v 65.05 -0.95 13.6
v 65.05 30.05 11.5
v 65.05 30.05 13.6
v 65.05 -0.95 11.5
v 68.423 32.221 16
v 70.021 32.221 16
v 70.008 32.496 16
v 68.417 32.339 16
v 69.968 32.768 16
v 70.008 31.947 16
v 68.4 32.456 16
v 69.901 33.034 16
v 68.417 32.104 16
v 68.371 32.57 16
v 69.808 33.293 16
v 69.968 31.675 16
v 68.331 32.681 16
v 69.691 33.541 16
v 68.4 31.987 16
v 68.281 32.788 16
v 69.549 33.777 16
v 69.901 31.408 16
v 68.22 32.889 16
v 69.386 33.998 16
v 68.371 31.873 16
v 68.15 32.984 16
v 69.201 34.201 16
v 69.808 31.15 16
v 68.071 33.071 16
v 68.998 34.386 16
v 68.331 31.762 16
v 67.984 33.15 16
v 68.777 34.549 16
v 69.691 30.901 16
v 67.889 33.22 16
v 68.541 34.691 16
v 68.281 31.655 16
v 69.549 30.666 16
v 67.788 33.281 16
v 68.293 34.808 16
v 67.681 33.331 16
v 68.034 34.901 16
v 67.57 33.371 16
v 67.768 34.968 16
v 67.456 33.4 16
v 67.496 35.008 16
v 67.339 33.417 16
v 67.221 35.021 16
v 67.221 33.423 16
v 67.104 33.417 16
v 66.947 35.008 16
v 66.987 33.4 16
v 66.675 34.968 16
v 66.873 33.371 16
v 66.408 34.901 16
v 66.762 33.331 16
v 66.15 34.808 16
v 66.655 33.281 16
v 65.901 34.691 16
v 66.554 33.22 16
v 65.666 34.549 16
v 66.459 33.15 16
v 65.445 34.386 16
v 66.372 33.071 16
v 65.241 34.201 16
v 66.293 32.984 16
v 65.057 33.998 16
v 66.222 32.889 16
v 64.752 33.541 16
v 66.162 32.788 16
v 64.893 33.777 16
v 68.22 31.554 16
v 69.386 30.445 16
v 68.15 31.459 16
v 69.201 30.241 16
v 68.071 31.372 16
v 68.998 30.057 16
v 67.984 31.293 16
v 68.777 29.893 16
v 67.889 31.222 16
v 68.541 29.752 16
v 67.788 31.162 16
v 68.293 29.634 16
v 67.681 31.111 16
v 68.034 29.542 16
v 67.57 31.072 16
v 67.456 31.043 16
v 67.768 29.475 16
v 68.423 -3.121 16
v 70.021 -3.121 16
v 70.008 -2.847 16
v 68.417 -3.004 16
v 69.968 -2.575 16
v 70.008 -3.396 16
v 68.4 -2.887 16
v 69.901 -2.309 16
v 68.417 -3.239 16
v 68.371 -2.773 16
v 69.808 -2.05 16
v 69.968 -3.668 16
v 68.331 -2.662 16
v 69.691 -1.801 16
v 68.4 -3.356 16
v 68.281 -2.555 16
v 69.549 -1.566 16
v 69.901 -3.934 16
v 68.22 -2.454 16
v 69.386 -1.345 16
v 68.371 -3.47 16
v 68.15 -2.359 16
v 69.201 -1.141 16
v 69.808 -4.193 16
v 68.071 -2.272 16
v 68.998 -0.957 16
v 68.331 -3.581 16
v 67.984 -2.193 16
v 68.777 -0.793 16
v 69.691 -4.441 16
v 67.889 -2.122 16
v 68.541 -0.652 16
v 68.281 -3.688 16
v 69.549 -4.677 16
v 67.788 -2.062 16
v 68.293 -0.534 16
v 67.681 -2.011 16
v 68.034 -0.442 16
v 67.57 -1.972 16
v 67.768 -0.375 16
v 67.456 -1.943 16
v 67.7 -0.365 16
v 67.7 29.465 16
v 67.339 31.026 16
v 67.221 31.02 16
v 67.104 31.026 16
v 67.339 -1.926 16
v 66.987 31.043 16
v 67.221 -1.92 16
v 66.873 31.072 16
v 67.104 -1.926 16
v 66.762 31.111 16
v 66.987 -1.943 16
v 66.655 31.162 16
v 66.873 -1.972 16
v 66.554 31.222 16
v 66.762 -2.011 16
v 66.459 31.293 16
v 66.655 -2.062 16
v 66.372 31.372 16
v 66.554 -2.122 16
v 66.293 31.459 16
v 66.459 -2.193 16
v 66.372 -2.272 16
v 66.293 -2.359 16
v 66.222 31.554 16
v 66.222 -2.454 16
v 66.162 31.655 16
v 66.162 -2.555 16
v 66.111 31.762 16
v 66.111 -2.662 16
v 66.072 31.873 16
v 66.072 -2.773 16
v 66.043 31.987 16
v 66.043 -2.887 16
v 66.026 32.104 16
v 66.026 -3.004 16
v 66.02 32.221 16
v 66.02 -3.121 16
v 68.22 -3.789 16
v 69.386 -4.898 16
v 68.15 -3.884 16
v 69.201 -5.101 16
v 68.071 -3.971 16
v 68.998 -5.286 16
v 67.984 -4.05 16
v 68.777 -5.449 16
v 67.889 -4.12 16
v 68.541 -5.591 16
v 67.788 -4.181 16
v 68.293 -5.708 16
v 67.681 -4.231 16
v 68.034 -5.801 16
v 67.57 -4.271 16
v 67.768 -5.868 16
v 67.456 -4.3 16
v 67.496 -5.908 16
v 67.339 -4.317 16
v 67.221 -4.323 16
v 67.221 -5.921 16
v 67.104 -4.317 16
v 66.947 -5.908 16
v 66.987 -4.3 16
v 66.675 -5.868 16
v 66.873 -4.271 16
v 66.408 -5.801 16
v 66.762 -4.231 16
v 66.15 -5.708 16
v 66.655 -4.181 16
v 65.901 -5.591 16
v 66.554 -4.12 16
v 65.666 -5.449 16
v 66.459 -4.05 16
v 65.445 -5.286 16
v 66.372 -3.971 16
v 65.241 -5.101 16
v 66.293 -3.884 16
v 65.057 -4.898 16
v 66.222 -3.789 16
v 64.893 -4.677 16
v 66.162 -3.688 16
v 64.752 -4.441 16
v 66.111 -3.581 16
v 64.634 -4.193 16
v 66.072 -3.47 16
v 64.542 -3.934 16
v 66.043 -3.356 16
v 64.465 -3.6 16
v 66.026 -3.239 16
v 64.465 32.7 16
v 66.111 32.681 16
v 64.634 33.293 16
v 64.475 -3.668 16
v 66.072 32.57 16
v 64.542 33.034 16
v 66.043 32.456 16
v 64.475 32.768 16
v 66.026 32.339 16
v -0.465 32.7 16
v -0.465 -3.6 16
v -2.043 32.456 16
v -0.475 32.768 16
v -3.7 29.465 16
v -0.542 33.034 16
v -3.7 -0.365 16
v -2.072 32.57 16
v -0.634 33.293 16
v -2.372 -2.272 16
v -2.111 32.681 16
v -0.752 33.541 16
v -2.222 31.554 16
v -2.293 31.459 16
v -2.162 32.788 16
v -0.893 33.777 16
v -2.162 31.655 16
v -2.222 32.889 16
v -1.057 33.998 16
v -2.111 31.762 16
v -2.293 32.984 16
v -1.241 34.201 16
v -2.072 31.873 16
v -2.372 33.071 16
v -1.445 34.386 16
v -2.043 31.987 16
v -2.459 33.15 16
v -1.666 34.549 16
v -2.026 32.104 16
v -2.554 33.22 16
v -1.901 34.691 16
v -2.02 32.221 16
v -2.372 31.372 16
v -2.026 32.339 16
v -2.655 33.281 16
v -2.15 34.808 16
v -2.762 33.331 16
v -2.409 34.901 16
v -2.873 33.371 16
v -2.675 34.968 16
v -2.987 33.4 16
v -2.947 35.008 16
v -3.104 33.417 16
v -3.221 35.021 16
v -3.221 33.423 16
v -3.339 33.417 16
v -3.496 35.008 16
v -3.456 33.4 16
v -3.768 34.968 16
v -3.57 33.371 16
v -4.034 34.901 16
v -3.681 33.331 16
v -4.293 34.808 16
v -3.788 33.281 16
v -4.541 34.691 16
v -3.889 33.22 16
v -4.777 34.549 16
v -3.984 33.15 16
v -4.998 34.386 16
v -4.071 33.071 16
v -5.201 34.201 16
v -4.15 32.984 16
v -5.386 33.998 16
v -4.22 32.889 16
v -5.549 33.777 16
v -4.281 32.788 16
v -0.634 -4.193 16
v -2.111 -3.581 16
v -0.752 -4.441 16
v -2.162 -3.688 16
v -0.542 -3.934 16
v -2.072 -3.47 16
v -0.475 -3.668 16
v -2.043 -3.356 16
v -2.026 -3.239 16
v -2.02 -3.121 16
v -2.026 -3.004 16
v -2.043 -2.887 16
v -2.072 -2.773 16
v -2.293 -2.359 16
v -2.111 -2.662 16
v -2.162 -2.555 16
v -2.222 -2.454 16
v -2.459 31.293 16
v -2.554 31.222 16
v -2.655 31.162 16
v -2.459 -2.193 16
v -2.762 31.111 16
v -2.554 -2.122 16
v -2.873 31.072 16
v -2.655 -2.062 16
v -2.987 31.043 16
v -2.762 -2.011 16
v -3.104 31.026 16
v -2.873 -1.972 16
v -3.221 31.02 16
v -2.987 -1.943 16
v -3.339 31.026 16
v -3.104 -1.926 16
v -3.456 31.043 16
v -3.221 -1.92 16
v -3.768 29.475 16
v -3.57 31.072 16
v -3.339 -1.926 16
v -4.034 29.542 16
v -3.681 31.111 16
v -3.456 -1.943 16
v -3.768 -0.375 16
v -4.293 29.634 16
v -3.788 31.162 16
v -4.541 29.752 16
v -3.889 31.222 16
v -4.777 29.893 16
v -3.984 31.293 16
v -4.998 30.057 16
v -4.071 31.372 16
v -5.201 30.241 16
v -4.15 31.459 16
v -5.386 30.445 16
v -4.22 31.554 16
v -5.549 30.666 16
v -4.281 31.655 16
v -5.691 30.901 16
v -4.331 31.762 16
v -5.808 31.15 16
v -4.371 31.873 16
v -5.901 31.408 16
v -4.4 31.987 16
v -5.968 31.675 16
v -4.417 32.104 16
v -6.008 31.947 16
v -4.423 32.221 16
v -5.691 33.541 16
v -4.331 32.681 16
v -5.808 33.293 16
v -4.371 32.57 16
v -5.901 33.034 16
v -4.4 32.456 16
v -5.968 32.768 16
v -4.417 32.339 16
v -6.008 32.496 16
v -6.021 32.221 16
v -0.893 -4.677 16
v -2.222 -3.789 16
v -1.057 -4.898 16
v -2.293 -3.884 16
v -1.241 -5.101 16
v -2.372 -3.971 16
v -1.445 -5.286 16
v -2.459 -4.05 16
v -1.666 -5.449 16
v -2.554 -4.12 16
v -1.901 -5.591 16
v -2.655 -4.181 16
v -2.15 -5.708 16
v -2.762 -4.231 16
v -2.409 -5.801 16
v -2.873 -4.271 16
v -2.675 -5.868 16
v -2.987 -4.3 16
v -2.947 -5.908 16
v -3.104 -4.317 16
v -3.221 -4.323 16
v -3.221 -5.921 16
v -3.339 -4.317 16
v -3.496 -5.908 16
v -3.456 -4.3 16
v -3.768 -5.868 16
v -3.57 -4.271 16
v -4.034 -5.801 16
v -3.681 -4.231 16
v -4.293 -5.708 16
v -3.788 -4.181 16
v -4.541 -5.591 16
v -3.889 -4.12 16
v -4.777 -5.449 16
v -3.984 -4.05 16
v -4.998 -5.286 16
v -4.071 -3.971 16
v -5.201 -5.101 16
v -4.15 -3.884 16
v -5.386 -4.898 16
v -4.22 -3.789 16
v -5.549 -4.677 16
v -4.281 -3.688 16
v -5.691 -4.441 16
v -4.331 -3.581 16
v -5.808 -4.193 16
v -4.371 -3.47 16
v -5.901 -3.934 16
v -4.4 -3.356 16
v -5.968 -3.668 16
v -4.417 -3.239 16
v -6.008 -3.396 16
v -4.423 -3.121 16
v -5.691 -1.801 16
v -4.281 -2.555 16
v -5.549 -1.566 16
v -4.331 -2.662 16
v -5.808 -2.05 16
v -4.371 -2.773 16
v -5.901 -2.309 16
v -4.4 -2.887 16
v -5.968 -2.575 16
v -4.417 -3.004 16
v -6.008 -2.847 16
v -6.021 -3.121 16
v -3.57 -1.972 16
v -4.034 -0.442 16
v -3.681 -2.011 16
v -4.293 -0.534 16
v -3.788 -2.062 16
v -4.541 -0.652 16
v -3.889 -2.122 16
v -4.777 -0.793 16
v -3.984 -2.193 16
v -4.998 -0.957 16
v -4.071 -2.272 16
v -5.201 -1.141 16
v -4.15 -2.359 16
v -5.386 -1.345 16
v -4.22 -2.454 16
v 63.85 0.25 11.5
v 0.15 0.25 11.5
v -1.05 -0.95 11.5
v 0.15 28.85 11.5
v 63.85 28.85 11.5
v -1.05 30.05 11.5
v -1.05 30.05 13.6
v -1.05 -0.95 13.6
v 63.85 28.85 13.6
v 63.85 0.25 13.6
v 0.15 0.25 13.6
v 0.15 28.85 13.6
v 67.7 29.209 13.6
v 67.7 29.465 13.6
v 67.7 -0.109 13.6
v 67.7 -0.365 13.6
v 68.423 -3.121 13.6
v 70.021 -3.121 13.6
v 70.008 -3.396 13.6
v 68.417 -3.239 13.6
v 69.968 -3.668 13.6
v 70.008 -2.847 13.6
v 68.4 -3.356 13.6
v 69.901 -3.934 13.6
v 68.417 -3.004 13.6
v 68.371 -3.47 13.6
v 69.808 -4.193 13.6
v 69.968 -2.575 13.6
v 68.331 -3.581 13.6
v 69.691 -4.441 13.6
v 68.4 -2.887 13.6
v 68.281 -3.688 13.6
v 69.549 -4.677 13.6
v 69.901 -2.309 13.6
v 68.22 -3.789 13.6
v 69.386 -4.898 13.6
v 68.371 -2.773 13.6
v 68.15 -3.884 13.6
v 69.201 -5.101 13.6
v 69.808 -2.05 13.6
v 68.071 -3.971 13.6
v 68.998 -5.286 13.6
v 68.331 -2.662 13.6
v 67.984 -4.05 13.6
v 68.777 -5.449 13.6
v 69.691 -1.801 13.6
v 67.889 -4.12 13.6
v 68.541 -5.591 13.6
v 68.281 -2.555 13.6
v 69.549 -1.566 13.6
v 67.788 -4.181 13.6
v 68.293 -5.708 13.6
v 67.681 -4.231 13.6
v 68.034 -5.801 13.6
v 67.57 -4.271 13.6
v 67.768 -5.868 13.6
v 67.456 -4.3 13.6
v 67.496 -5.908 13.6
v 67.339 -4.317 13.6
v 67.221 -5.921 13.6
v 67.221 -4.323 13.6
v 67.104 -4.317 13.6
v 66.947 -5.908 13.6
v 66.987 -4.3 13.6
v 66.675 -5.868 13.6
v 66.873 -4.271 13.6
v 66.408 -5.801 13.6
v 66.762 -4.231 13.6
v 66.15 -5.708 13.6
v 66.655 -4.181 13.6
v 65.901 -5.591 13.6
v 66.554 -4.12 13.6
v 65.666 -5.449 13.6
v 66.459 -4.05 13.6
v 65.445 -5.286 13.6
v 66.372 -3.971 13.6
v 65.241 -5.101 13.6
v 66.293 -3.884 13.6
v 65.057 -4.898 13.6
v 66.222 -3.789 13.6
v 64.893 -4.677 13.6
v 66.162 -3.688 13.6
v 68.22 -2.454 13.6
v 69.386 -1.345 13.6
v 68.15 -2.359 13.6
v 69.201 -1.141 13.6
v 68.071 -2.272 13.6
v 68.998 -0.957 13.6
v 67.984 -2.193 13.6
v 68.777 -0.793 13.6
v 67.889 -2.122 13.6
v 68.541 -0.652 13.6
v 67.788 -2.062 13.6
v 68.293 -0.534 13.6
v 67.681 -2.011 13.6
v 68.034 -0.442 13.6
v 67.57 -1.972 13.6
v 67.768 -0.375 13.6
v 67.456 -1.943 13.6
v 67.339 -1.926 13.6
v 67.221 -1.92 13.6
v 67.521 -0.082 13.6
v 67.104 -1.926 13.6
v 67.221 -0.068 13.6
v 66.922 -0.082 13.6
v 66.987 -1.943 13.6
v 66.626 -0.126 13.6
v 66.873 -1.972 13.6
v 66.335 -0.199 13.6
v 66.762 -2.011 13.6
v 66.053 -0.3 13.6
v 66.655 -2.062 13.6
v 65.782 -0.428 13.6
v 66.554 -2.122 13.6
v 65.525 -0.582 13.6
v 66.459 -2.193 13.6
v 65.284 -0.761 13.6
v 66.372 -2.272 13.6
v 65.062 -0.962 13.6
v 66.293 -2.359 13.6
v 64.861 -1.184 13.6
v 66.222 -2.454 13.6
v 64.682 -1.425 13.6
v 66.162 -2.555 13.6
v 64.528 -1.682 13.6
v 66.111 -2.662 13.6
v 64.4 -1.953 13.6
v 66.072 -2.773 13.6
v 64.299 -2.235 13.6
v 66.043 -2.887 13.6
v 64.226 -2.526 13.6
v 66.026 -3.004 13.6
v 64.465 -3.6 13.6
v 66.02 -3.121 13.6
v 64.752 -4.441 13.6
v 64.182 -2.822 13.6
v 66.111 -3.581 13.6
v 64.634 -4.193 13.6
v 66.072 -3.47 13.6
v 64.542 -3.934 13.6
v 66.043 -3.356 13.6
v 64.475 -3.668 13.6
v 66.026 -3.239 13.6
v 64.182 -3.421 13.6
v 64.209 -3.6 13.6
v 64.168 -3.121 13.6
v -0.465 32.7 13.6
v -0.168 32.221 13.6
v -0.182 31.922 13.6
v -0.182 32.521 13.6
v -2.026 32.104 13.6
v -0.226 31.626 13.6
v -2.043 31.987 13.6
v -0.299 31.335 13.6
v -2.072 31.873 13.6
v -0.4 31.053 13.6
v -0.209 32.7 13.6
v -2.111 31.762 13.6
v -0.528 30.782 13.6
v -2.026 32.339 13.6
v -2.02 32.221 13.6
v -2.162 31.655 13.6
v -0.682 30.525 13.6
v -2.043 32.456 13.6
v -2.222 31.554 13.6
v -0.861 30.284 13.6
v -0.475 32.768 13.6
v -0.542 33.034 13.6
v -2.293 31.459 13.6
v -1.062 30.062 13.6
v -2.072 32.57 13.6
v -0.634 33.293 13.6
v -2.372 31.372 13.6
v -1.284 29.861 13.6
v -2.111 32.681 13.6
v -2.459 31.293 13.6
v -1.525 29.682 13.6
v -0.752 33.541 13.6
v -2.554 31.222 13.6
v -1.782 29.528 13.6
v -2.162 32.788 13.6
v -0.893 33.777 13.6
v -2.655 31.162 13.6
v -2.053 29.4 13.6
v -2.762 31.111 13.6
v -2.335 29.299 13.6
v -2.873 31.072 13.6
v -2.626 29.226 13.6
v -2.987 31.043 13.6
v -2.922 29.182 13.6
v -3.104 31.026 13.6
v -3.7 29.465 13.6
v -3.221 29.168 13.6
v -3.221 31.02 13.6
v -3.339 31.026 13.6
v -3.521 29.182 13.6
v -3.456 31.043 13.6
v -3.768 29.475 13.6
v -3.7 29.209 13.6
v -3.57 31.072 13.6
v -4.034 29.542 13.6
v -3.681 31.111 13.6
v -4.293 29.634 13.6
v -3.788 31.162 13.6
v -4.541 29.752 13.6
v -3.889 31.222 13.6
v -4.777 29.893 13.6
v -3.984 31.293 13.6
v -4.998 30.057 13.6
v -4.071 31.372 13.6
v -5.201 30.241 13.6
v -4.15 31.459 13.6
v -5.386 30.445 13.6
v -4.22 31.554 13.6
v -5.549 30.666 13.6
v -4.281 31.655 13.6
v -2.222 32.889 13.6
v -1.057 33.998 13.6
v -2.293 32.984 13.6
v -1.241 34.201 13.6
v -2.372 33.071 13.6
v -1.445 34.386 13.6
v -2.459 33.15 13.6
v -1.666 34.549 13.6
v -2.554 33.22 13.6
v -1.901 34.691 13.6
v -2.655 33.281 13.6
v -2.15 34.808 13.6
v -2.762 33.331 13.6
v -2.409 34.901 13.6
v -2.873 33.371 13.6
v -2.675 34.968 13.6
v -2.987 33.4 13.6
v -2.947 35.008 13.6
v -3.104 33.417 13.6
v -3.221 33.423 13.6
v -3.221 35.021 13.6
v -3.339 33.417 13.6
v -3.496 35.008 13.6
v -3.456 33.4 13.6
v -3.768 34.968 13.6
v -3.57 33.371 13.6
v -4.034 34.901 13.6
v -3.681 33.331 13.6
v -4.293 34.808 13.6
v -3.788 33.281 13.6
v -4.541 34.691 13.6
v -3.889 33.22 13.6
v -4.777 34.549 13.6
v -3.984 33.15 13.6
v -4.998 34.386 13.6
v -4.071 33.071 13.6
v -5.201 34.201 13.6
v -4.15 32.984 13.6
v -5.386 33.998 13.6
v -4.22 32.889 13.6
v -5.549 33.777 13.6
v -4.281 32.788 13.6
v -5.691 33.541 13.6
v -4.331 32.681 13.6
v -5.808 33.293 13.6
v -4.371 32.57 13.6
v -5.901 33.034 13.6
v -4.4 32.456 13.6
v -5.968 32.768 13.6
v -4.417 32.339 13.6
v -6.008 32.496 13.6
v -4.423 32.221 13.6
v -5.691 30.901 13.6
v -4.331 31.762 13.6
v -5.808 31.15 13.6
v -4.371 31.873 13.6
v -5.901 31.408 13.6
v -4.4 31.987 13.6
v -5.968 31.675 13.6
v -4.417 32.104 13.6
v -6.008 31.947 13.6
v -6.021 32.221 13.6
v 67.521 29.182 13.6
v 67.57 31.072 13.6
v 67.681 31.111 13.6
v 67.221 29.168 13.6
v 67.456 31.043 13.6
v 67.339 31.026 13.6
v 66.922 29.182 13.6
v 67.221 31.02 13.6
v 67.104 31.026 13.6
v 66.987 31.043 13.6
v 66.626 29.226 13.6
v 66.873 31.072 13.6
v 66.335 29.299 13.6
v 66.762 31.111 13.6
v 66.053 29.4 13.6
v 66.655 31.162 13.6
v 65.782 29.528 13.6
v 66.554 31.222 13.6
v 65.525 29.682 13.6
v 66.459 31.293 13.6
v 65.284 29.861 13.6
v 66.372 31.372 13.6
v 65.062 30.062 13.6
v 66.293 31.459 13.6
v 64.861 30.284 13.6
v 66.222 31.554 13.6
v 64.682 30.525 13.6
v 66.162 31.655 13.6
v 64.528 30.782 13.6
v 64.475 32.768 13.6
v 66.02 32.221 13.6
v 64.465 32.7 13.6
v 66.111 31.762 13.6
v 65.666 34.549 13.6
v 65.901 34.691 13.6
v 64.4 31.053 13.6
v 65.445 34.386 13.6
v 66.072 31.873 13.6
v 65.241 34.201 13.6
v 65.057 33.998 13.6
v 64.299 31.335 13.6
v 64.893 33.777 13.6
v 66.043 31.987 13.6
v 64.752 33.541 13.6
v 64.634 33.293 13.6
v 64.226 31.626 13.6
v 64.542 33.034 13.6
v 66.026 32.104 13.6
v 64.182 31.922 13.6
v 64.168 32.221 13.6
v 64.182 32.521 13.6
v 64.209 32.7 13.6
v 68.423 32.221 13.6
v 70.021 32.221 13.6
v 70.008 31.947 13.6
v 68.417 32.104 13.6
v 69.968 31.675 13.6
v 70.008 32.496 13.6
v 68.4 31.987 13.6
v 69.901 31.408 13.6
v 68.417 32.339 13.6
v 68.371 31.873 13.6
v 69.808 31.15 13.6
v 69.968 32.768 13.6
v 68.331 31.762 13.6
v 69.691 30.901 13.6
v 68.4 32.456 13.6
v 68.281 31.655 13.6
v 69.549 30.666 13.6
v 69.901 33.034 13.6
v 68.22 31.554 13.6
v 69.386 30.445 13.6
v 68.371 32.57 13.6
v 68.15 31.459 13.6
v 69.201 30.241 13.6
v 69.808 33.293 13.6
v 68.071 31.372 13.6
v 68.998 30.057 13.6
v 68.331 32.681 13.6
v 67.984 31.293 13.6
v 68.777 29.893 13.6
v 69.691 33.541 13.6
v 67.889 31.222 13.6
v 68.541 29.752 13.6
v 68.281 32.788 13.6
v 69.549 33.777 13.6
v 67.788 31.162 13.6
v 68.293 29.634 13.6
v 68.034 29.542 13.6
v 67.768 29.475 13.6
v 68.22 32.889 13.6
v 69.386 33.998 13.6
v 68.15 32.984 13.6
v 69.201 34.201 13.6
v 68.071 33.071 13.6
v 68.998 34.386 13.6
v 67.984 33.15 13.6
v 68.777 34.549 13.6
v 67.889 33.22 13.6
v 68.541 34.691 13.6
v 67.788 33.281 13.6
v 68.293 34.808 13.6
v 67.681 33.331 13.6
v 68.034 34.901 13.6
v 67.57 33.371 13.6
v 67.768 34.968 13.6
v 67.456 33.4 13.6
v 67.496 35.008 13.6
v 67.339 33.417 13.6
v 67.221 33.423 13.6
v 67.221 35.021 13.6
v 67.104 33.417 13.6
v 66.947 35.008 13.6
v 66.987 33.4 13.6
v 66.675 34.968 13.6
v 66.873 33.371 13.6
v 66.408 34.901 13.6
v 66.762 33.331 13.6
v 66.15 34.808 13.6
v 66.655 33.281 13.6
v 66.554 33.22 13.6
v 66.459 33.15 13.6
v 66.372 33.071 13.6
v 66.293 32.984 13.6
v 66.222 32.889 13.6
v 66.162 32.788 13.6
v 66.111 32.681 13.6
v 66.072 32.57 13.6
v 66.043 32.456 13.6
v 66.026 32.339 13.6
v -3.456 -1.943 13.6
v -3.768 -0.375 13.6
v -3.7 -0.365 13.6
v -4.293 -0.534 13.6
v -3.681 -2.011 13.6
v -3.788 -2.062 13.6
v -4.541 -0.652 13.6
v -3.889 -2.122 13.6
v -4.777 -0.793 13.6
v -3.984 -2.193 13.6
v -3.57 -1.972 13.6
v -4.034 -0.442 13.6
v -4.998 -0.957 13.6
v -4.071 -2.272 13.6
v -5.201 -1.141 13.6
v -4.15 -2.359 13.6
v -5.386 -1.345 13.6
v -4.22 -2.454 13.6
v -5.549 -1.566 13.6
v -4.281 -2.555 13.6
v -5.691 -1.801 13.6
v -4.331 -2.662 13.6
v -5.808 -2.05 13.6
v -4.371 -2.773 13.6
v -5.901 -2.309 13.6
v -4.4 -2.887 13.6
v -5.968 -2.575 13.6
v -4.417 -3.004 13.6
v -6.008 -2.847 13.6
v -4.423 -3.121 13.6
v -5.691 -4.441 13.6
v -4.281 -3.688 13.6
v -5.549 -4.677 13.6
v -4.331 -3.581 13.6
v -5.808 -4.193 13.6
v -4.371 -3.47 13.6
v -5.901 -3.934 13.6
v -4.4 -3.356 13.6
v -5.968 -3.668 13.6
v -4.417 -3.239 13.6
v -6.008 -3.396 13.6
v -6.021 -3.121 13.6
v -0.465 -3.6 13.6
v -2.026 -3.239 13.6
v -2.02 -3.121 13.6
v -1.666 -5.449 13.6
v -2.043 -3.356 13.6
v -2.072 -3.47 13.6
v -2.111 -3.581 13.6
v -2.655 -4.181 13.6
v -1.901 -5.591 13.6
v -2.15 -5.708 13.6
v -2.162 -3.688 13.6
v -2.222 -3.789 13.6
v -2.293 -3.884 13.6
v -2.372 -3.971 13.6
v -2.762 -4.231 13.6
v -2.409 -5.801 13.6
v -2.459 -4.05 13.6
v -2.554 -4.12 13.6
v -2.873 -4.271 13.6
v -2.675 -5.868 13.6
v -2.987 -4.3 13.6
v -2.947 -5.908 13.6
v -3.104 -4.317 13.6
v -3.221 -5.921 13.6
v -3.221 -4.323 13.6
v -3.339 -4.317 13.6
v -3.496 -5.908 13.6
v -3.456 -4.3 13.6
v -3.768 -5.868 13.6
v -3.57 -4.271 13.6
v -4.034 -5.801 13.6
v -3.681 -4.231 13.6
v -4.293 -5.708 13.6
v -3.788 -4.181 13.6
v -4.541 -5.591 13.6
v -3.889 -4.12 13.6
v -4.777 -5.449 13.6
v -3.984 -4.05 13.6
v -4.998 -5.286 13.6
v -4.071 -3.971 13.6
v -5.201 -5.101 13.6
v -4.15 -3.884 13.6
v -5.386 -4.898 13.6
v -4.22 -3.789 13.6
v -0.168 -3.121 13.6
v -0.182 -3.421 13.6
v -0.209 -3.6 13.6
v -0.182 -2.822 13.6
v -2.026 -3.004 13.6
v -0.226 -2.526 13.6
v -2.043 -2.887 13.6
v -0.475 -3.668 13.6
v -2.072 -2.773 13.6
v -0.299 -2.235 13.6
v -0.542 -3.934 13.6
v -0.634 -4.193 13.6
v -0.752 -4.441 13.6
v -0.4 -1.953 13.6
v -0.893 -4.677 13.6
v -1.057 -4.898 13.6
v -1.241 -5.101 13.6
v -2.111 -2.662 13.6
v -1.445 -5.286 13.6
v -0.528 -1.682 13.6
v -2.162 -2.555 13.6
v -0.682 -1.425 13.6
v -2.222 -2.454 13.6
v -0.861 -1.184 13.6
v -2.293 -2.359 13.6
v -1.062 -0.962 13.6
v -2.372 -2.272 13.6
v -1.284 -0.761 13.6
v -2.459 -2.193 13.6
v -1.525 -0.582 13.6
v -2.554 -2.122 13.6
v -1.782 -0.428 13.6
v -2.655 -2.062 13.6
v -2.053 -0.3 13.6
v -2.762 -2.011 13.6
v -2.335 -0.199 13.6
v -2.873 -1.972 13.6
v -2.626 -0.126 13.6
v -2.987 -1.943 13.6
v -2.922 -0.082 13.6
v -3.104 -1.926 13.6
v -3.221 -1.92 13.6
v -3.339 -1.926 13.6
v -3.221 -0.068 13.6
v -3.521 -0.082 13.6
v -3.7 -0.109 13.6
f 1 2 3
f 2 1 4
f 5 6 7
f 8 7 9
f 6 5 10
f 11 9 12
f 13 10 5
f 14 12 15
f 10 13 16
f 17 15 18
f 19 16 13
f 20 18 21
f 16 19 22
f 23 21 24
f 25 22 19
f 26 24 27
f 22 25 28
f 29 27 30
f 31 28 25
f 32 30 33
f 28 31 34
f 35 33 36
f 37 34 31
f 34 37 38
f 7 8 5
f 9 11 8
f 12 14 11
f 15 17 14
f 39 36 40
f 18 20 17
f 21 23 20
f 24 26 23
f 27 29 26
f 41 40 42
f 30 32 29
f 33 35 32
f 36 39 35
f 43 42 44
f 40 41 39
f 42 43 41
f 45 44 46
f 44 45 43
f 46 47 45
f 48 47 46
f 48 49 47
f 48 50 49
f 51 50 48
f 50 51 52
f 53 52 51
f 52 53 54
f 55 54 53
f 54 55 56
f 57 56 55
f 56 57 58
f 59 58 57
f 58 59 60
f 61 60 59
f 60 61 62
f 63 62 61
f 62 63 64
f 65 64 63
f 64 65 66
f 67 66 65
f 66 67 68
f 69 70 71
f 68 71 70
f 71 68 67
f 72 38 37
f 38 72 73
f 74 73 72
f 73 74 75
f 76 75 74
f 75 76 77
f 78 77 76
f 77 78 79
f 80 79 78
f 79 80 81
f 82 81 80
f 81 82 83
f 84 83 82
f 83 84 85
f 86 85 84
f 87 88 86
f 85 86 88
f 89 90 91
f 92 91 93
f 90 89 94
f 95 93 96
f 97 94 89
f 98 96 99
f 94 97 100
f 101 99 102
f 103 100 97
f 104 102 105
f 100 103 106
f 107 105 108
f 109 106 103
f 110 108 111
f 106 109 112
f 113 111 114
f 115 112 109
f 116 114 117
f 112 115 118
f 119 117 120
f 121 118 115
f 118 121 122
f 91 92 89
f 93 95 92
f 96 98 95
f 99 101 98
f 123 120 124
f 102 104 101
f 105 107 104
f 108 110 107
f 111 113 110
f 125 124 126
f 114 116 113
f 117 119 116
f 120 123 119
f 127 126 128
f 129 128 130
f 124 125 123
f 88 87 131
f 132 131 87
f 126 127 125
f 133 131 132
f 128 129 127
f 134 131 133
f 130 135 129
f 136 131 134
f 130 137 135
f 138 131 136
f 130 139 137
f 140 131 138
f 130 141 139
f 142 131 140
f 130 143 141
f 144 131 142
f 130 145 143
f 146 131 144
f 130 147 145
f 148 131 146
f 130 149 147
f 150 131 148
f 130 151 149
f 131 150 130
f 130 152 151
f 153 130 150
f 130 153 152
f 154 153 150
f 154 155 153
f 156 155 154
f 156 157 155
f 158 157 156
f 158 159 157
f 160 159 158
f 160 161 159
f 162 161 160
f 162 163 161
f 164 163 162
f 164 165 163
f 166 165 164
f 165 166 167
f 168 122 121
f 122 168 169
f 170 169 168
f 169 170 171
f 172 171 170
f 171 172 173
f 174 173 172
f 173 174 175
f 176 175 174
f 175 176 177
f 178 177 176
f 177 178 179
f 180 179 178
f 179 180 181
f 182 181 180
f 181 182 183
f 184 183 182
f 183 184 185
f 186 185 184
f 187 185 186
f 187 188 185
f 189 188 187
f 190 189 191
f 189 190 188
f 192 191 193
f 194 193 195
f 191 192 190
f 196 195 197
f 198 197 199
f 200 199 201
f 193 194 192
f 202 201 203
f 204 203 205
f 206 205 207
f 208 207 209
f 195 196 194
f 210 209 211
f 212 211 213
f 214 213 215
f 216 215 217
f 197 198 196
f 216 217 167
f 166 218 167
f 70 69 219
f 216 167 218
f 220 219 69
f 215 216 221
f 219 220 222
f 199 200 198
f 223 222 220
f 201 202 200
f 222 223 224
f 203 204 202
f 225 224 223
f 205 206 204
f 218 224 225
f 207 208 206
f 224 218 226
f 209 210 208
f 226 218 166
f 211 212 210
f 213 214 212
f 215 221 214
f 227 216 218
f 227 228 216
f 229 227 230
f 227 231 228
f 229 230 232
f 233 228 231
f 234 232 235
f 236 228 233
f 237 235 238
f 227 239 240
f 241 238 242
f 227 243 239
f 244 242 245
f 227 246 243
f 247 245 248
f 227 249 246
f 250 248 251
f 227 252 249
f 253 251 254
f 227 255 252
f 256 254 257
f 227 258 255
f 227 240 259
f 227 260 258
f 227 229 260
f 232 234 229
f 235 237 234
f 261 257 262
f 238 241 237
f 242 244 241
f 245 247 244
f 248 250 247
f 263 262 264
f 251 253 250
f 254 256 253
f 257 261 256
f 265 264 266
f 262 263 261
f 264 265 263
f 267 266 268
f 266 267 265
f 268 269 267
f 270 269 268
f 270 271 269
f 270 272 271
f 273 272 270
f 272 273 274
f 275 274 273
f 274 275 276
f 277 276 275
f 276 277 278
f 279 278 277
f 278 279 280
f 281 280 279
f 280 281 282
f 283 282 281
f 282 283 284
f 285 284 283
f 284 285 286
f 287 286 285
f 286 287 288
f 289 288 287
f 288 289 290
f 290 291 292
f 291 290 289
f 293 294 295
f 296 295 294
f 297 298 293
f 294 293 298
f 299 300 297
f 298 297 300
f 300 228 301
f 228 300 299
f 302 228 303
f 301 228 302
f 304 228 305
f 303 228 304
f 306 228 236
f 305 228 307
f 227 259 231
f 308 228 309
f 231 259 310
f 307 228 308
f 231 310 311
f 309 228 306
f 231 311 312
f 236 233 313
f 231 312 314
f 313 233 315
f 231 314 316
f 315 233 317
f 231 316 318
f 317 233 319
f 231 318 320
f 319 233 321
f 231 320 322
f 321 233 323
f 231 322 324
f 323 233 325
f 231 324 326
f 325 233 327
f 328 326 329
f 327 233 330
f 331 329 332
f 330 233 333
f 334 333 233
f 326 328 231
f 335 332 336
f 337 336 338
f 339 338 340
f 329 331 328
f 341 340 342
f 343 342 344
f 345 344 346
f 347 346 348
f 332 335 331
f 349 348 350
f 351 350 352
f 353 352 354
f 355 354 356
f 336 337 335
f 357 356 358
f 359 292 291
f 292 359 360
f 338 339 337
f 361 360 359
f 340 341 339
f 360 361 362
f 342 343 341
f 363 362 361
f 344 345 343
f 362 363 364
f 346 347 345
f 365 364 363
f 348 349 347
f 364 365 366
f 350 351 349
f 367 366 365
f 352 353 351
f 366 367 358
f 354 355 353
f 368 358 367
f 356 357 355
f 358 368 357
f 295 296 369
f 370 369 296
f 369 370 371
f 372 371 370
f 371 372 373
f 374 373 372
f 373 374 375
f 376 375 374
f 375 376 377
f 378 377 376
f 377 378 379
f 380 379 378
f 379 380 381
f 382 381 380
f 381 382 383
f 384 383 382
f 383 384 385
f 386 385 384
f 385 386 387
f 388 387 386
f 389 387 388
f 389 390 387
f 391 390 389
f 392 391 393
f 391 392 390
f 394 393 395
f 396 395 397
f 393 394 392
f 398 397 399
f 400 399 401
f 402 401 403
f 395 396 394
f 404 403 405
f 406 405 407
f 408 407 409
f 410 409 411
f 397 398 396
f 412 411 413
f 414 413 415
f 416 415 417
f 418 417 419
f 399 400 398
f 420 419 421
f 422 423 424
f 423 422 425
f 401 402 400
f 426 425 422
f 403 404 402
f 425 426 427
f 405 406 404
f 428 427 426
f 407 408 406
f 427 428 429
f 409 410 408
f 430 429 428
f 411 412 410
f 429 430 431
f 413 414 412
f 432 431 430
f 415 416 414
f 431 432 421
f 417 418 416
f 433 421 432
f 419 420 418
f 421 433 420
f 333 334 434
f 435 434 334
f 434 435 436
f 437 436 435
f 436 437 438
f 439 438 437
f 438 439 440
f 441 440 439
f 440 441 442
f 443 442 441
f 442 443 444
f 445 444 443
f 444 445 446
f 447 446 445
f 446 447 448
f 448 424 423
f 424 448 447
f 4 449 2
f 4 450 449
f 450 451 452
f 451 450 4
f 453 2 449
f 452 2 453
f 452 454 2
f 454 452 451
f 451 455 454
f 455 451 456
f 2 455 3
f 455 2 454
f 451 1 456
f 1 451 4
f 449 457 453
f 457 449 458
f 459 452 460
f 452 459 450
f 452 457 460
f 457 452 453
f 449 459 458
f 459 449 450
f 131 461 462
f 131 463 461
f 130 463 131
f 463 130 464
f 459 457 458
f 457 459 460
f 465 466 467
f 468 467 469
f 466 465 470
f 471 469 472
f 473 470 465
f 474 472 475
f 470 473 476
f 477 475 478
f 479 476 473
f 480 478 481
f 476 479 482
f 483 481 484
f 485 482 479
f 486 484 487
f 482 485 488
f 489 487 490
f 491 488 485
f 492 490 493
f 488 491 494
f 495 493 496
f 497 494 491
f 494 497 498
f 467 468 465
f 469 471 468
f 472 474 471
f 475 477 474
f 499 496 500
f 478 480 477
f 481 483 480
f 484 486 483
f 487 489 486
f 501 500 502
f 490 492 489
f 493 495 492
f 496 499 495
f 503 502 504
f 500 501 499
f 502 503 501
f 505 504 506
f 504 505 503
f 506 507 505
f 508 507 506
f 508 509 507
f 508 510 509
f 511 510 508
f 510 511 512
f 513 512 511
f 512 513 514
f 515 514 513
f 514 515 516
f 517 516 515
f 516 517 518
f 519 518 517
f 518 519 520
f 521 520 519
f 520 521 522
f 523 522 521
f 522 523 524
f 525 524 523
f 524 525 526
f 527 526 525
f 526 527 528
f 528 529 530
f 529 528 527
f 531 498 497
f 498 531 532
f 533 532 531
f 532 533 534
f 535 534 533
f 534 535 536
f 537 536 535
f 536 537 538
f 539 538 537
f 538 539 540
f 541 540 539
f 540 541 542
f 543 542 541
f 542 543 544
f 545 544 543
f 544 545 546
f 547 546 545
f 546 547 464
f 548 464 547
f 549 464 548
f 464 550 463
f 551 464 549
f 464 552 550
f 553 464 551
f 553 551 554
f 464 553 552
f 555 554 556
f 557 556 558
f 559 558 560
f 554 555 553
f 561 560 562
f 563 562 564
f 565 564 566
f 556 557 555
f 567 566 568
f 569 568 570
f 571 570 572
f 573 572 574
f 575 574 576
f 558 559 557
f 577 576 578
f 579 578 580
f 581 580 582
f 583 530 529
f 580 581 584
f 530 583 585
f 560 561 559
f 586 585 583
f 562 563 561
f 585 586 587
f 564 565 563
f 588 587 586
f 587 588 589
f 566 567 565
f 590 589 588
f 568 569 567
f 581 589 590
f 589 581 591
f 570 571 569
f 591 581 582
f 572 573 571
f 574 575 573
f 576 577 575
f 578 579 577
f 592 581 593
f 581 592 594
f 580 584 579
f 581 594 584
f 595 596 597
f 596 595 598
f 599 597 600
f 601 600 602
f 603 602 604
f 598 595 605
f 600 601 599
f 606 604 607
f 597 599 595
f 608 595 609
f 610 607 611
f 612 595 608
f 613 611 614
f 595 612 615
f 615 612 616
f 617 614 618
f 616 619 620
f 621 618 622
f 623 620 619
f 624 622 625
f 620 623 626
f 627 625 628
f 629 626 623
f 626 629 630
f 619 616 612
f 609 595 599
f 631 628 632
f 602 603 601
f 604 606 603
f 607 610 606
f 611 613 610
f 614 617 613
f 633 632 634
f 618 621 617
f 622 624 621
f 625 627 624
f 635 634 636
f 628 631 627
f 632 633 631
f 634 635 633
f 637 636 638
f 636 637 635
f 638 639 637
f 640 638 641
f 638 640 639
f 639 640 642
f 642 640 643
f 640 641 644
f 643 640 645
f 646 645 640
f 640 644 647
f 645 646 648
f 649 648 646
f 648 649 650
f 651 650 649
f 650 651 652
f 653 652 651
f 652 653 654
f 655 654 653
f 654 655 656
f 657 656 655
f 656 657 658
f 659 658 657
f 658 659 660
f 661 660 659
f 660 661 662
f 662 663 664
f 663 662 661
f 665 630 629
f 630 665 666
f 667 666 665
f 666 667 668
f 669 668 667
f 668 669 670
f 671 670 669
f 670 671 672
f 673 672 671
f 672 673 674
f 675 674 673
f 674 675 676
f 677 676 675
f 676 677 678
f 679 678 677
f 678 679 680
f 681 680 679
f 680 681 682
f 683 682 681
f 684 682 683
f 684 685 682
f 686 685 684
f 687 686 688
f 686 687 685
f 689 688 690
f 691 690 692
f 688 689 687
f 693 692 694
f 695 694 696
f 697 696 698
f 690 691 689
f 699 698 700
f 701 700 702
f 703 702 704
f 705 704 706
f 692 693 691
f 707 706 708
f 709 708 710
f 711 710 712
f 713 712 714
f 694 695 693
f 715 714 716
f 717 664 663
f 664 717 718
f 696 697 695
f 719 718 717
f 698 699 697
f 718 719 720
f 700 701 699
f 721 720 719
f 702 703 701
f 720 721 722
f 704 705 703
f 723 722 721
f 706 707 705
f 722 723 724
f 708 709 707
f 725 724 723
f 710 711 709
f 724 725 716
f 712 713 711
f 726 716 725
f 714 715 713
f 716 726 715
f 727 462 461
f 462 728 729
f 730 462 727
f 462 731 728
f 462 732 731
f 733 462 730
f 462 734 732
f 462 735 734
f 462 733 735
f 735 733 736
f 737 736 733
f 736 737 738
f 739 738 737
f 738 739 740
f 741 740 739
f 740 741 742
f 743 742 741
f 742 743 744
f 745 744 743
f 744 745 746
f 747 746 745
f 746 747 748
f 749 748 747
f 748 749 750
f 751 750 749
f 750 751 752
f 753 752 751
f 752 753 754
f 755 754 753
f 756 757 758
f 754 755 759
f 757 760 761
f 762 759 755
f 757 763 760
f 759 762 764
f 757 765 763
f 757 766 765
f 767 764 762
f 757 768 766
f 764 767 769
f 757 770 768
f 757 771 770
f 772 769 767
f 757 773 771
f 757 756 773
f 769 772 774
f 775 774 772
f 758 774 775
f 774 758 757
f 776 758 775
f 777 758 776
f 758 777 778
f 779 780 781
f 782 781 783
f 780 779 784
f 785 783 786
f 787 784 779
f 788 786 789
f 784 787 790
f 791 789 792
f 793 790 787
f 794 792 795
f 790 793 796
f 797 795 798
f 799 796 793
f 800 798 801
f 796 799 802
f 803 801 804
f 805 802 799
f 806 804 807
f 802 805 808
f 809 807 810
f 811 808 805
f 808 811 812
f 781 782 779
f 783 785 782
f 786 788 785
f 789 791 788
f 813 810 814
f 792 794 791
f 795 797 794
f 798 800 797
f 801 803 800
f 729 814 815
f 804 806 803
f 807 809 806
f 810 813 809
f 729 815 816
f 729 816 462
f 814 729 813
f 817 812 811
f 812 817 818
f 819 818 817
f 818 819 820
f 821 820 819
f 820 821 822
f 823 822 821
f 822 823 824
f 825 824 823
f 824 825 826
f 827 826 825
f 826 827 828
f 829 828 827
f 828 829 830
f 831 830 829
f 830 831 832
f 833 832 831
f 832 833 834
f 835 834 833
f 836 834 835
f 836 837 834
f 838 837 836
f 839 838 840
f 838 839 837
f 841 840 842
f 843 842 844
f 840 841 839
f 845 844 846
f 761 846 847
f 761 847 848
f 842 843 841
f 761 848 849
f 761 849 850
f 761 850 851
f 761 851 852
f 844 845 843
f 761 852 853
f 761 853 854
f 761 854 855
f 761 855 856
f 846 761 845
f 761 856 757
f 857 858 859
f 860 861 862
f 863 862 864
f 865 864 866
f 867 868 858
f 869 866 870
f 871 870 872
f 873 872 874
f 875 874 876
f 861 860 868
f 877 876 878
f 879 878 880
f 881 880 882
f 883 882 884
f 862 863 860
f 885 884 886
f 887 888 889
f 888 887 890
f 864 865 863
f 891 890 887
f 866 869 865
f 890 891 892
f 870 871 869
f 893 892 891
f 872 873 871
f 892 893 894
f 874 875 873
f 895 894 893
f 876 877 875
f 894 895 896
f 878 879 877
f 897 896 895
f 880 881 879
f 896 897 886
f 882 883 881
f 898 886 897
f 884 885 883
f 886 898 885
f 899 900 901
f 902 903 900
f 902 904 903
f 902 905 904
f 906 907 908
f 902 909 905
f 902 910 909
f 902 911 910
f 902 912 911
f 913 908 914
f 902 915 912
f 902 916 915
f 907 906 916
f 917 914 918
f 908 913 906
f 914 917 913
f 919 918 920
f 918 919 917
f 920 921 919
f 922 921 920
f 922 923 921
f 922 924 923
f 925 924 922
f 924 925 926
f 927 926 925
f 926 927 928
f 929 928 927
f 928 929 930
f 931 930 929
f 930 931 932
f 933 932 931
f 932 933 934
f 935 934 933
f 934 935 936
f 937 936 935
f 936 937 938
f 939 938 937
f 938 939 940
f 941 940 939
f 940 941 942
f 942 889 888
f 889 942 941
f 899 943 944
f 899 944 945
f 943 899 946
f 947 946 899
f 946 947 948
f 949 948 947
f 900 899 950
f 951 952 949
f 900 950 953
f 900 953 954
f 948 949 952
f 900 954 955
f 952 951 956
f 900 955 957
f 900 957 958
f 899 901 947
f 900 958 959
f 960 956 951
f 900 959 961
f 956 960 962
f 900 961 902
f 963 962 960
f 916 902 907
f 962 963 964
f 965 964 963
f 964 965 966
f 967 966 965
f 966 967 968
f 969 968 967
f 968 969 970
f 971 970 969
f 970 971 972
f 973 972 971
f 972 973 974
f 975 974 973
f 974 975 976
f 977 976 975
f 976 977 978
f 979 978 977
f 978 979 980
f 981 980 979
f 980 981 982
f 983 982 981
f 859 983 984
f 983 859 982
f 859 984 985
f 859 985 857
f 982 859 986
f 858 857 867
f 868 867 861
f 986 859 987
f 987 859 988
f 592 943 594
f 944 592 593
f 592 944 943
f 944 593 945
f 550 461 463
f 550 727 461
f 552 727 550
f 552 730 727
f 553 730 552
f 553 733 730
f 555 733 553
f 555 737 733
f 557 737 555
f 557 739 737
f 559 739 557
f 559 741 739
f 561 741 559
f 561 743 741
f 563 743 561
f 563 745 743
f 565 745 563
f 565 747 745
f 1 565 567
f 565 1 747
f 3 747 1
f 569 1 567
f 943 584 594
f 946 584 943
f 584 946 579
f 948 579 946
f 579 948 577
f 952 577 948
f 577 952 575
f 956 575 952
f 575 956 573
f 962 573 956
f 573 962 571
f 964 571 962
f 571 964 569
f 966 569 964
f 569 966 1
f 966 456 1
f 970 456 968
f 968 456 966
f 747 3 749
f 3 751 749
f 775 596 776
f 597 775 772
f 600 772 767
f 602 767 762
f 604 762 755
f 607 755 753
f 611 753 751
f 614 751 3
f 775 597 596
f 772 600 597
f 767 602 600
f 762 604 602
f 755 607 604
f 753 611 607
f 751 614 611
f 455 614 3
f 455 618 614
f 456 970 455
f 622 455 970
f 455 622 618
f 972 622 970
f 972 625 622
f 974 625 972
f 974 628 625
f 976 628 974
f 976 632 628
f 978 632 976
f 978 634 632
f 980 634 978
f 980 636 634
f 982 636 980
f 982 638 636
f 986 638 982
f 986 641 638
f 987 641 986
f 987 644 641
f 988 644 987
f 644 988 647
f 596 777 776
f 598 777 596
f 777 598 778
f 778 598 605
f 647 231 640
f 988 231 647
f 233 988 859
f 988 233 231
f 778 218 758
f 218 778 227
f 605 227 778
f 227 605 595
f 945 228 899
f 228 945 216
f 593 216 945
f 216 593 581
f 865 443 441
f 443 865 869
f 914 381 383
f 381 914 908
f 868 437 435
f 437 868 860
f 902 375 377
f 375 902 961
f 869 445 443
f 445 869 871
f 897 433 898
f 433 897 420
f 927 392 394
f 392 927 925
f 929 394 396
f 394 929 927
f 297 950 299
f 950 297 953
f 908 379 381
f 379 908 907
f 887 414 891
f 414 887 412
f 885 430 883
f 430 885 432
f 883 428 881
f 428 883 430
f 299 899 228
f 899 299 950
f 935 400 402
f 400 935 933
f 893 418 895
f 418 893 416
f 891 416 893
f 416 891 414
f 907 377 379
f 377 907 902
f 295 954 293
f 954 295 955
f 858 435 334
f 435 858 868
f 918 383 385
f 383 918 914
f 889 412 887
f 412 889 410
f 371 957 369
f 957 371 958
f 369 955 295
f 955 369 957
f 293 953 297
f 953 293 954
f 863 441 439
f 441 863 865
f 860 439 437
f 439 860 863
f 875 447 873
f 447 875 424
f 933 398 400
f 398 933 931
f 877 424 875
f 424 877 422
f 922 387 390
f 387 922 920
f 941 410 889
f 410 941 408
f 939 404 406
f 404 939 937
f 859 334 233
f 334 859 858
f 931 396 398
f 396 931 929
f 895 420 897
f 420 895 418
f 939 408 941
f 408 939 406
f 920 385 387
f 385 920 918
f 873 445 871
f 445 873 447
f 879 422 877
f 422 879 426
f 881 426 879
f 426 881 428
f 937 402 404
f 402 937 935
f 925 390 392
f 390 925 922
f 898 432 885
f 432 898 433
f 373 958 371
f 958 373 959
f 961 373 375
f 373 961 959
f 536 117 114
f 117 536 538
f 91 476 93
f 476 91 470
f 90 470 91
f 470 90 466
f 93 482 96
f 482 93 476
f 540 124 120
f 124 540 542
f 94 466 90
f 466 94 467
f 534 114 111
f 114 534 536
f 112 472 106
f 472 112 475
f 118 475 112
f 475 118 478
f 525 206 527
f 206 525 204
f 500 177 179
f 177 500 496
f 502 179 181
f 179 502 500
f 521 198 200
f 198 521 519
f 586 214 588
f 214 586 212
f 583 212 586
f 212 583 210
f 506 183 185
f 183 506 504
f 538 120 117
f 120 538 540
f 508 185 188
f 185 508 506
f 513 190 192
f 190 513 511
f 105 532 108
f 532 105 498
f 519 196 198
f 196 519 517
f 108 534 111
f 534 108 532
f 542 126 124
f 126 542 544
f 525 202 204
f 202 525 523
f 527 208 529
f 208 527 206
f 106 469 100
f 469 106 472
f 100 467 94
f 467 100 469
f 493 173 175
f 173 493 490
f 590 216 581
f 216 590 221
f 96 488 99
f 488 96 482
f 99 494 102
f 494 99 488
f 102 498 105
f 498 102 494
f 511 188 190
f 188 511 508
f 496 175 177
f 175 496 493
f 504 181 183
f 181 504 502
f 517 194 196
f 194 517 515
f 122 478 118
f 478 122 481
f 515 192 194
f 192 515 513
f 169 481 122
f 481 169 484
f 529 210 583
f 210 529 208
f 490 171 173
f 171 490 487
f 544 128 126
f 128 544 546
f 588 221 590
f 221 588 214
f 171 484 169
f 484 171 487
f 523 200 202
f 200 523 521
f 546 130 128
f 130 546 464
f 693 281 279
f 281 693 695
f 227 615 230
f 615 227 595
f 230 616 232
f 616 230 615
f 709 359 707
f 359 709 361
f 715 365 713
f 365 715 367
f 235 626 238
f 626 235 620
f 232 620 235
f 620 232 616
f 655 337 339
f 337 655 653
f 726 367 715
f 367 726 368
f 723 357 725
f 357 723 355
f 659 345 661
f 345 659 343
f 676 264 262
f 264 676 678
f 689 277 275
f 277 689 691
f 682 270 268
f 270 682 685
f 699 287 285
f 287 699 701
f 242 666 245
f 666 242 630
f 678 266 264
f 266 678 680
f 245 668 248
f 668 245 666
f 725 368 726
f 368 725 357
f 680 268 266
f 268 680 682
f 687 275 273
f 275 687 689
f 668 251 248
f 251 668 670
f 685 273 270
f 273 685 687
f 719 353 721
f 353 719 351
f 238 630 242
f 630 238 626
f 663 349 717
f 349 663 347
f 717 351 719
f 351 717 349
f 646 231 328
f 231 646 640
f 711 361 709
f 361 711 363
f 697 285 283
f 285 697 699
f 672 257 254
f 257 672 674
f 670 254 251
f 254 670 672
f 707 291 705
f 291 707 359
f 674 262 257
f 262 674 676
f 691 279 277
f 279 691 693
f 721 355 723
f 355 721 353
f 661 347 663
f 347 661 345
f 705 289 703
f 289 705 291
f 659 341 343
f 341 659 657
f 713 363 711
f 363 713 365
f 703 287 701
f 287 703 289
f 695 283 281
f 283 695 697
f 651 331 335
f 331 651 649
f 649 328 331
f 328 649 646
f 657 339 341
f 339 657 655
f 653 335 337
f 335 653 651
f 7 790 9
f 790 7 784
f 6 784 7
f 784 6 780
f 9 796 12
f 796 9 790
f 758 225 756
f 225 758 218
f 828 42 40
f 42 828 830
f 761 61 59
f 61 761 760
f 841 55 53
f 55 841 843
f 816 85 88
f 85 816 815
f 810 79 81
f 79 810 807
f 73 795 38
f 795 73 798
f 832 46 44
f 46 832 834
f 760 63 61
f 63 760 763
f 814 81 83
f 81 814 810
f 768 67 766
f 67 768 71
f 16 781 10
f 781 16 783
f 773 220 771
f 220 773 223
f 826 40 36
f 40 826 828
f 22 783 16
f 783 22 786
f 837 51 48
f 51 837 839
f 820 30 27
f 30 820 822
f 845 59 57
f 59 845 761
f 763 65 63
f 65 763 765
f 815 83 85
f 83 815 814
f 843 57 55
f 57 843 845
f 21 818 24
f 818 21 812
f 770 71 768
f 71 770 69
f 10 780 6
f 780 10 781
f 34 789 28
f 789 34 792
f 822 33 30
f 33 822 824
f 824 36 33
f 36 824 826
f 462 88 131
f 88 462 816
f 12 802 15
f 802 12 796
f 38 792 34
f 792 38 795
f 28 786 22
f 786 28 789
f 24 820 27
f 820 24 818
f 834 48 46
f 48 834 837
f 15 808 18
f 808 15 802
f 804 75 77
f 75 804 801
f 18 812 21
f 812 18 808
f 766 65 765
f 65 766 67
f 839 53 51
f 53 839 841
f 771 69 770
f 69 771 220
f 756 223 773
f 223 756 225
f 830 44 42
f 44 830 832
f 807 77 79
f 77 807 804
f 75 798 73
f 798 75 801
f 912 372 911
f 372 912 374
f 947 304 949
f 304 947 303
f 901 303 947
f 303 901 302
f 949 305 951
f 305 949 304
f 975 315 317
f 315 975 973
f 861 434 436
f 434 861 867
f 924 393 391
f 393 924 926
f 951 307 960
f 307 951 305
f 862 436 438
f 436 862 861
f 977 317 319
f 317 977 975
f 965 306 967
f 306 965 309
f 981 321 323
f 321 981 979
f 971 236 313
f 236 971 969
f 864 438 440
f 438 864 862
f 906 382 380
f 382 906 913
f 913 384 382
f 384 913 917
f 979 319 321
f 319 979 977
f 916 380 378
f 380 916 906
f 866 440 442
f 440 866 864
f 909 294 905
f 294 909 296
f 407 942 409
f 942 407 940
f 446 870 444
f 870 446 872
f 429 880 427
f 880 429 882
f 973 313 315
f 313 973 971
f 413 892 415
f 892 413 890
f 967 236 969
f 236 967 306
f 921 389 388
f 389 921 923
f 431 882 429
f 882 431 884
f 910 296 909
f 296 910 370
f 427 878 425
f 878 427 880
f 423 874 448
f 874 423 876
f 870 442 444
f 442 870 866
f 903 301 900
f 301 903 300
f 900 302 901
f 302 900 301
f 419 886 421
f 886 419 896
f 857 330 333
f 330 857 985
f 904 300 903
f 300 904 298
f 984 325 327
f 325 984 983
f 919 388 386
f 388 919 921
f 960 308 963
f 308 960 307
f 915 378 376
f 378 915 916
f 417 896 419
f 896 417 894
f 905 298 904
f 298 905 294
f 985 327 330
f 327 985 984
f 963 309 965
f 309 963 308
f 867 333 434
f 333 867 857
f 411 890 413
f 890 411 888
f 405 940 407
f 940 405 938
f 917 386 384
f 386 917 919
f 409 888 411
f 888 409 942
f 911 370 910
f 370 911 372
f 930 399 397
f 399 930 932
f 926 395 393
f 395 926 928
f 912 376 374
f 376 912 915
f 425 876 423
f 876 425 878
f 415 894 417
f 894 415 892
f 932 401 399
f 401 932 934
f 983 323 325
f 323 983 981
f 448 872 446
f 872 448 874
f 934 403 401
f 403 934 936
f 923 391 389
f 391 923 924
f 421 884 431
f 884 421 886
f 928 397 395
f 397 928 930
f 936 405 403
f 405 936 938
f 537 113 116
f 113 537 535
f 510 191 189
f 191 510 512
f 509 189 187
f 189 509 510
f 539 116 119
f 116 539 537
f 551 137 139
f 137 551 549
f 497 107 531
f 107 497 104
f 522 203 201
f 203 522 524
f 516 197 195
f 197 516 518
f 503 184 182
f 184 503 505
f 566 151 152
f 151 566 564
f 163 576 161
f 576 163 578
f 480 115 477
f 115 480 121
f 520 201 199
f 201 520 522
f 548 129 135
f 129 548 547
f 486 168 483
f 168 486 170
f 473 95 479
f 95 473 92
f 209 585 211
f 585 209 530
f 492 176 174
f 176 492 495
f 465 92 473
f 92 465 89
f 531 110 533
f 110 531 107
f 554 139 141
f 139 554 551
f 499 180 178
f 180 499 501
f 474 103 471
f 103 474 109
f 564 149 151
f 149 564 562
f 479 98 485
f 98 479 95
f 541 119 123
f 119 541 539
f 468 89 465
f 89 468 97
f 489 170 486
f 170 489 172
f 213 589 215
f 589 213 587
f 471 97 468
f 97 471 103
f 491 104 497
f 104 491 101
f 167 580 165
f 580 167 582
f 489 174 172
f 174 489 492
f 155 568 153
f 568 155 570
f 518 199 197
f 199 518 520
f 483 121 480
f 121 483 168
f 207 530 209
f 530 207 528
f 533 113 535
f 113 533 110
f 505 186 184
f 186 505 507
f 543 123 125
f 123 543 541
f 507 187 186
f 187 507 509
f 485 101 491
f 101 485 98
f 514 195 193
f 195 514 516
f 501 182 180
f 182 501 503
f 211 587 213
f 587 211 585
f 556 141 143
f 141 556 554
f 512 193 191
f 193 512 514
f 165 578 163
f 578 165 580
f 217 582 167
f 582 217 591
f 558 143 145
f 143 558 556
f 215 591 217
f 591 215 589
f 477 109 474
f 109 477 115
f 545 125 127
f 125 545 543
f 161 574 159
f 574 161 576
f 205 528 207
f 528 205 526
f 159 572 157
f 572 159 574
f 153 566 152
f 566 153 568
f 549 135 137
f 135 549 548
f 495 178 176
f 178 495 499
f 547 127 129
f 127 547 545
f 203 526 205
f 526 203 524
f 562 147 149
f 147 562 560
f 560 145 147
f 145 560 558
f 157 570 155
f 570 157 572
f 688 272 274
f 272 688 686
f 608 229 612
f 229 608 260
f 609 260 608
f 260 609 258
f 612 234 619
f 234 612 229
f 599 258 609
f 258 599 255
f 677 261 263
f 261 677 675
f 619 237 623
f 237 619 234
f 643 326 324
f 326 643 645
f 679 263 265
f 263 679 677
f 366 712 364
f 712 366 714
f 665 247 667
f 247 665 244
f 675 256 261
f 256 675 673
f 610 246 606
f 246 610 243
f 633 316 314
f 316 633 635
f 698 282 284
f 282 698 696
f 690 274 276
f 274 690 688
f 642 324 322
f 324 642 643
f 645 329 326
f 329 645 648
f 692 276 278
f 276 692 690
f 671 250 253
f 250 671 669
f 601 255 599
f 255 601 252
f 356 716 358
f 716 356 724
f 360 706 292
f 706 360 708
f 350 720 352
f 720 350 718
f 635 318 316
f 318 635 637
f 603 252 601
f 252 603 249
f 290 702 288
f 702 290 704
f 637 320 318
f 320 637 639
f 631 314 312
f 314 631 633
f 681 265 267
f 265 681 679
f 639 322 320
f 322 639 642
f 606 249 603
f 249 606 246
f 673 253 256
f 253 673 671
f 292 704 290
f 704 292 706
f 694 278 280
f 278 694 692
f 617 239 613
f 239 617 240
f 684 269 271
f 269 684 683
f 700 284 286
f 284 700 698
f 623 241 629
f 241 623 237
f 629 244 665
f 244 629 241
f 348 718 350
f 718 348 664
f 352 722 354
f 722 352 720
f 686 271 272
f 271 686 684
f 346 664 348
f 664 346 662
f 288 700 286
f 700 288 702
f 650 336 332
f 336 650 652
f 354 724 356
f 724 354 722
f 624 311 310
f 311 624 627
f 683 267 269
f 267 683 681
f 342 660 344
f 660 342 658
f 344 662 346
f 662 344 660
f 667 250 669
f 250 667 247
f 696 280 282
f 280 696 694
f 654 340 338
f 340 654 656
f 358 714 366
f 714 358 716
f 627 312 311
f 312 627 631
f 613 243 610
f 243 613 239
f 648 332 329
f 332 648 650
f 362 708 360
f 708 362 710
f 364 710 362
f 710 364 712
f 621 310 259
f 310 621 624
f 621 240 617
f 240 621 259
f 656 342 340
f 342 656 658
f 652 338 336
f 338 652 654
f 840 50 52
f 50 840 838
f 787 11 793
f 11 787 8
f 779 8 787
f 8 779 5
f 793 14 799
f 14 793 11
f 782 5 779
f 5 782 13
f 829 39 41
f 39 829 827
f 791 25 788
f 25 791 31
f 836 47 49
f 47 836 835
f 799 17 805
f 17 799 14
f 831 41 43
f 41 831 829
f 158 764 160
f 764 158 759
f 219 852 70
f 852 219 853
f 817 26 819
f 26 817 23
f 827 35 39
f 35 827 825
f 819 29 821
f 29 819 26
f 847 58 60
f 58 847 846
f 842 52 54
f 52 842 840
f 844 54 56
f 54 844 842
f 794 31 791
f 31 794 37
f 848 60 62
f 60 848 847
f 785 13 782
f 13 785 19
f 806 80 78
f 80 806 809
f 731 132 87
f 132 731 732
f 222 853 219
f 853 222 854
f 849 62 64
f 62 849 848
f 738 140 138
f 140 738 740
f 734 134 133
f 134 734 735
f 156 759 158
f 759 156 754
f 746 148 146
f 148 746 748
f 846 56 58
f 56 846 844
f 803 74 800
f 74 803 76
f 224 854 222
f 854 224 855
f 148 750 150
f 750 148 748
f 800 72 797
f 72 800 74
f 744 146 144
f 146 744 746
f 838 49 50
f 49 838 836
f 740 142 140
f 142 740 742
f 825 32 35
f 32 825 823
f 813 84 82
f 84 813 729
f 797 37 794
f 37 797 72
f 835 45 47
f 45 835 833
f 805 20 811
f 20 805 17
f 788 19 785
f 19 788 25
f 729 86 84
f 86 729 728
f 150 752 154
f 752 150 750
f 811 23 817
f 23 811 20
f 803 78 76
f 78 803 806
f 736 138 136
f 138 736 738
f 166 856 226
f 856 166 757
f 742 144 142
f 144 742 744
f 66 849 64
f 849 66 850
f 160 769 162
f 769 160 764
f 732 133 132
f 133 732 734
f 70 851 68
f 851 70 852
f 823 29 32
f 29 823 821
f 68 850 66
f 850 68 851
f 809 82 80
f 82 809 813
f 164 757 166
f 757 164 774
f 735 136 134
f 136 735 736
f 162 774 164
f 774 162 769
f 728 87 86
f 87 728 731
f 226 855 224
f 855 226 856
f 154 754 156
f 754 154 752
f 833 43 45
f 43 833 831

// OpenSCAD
// body lid
difference() {
  union() {
    // body lid (lid_plate)
    multmatrix([[1, 0, 0, 32], [0, 1, 0, 14.55], [0, 0, 1, 13.6], [0, 0, 0, 1]]) translate([-35.7, -18.15, 0]) cube([71.4, 36.3, 2.4]);
    // add lid_lip (lip)
    multmatrix([[1, 0, 0, 32], [0, 1, 0, 14.55], [0, 0, 1, 11.5], [0, 0, 0, 1]]) difference() { translate([-33.05, -15.5, 0]) cube([66.1, 31, 4.5]); translate([0, 0, -1]) translate([-31.85, -14.3, 0]) cube([63.7, 28.6, 6.5]); }
    // add boss_1_pad (pad)
    multmatrix([[1, 0, 0, -3.22132], [0, 1, 0, -3.12132], [0, 0, 1, 13.6], [0, 0, 0, 1]]) cylinder(h=2.4, d=5.6, $fn=64);
    // add boss_2_pad (pad)
    multmatrix([[1, 0, 0, 67.22132], [0, 1, 0, -3.12132], [0, 0, 1, 13.6], [0, 0, 0, 1]]) cylinder(h=2.4, d=5.6, $fn=64);
    // add boss_3_pad (pad)
    multmatrix([[1, 0, 0, -3.22132], [0, 1, 0, 32.22132], [0, 0, 1, 13.6], [0, 0, 0, 1]]) cylinder(h=2.4, d=5.6, $fn=64);
    // add boss_4_pad (pad)
    multmatrix([[1, 0, 0, 67.22132], [0, 1, 0, 32.22132], [0, 0, 1, 13.6], [0, 0, 0, 1]]) cylinder(h=2.4, d=5.6, $fn=64);
  }
  // cut boss_1_lid_hole (screw_hole)
  multmatrix([[1, 0, 0, -3.22132], [0, 1, 0, -3.12132], [0, 0, 1, 12.6], [0, 0, 0, 1]]) cylinder(h=4.4, d=2.402894, $fn=64);
  // cut boss_1_lip_notch (lip_notch)
  multmatrix([[1, 0, 0, -3.22132], [0, 1, 0, -3.12132], [0, 0, 1, 10.5], [0, 0, 0, 1]]) cylinder(h=3.1, d=6.107357, $fn=64);
  // cut boss_2_lid_hole (screw_hole)
  multmatrix([[1, 0, 0, 67.22132], [0, 1, 0, -3.12132], [0, 0, 1, 12.6], [0, 0, 0, 1]]) cylinder(h=4.4, d=2.402894, $fn=64);
  // cut boss_2_lip_notch (lip_notch)
  multmatrix([[1, 0, 0, 67.22132], [0, 1, 0, -3.12132], [0, 0, 1, 10.5], [0, 0, 0, 1]]) cylinder(h=3.1, d=6.107357, $fn=64);
  // cut boss_3_lid_hole (screw_hole)
  multmatrix([[1, 0, 0, -3.22132], [0, 1, 0, 32.22132], [0, 0, 1, 12.6], [0, 0, 0, 1]]) cylinder(h=4.4, d=2.402894, $fn=64);
  // cut boss_3_lip_notch (lip_notch)
  multmatrix([[1, 0, 0, -3.22132], [0, 1, 0, 32.22132], [0, 0, 1, 10.5], [0, 0, 0, 1]]) cylinder(h=3.1, d=6.107357, $fn=64);
  // cut boss_4_lid_hole (screw_hole)
  multmatrix([[1, 0, 0, 67.22132], [0, 1, 0, 32.22132], [0, 0, 1, 12.6], [0, 0, 0, 1]]) cylinder(h=4.4, d=2.402894, $fn=64);
  // cut boss_4_lip_notch (lip_notch)
  multmatrix([[1, 0, 0, 67.22132], [0, 1, 0, 32.22132], [0, 0, 1, 10.5], [0, 0, 0, 1]]) cylinder(h=3.1, d=6.107357, $fn=64);
}
